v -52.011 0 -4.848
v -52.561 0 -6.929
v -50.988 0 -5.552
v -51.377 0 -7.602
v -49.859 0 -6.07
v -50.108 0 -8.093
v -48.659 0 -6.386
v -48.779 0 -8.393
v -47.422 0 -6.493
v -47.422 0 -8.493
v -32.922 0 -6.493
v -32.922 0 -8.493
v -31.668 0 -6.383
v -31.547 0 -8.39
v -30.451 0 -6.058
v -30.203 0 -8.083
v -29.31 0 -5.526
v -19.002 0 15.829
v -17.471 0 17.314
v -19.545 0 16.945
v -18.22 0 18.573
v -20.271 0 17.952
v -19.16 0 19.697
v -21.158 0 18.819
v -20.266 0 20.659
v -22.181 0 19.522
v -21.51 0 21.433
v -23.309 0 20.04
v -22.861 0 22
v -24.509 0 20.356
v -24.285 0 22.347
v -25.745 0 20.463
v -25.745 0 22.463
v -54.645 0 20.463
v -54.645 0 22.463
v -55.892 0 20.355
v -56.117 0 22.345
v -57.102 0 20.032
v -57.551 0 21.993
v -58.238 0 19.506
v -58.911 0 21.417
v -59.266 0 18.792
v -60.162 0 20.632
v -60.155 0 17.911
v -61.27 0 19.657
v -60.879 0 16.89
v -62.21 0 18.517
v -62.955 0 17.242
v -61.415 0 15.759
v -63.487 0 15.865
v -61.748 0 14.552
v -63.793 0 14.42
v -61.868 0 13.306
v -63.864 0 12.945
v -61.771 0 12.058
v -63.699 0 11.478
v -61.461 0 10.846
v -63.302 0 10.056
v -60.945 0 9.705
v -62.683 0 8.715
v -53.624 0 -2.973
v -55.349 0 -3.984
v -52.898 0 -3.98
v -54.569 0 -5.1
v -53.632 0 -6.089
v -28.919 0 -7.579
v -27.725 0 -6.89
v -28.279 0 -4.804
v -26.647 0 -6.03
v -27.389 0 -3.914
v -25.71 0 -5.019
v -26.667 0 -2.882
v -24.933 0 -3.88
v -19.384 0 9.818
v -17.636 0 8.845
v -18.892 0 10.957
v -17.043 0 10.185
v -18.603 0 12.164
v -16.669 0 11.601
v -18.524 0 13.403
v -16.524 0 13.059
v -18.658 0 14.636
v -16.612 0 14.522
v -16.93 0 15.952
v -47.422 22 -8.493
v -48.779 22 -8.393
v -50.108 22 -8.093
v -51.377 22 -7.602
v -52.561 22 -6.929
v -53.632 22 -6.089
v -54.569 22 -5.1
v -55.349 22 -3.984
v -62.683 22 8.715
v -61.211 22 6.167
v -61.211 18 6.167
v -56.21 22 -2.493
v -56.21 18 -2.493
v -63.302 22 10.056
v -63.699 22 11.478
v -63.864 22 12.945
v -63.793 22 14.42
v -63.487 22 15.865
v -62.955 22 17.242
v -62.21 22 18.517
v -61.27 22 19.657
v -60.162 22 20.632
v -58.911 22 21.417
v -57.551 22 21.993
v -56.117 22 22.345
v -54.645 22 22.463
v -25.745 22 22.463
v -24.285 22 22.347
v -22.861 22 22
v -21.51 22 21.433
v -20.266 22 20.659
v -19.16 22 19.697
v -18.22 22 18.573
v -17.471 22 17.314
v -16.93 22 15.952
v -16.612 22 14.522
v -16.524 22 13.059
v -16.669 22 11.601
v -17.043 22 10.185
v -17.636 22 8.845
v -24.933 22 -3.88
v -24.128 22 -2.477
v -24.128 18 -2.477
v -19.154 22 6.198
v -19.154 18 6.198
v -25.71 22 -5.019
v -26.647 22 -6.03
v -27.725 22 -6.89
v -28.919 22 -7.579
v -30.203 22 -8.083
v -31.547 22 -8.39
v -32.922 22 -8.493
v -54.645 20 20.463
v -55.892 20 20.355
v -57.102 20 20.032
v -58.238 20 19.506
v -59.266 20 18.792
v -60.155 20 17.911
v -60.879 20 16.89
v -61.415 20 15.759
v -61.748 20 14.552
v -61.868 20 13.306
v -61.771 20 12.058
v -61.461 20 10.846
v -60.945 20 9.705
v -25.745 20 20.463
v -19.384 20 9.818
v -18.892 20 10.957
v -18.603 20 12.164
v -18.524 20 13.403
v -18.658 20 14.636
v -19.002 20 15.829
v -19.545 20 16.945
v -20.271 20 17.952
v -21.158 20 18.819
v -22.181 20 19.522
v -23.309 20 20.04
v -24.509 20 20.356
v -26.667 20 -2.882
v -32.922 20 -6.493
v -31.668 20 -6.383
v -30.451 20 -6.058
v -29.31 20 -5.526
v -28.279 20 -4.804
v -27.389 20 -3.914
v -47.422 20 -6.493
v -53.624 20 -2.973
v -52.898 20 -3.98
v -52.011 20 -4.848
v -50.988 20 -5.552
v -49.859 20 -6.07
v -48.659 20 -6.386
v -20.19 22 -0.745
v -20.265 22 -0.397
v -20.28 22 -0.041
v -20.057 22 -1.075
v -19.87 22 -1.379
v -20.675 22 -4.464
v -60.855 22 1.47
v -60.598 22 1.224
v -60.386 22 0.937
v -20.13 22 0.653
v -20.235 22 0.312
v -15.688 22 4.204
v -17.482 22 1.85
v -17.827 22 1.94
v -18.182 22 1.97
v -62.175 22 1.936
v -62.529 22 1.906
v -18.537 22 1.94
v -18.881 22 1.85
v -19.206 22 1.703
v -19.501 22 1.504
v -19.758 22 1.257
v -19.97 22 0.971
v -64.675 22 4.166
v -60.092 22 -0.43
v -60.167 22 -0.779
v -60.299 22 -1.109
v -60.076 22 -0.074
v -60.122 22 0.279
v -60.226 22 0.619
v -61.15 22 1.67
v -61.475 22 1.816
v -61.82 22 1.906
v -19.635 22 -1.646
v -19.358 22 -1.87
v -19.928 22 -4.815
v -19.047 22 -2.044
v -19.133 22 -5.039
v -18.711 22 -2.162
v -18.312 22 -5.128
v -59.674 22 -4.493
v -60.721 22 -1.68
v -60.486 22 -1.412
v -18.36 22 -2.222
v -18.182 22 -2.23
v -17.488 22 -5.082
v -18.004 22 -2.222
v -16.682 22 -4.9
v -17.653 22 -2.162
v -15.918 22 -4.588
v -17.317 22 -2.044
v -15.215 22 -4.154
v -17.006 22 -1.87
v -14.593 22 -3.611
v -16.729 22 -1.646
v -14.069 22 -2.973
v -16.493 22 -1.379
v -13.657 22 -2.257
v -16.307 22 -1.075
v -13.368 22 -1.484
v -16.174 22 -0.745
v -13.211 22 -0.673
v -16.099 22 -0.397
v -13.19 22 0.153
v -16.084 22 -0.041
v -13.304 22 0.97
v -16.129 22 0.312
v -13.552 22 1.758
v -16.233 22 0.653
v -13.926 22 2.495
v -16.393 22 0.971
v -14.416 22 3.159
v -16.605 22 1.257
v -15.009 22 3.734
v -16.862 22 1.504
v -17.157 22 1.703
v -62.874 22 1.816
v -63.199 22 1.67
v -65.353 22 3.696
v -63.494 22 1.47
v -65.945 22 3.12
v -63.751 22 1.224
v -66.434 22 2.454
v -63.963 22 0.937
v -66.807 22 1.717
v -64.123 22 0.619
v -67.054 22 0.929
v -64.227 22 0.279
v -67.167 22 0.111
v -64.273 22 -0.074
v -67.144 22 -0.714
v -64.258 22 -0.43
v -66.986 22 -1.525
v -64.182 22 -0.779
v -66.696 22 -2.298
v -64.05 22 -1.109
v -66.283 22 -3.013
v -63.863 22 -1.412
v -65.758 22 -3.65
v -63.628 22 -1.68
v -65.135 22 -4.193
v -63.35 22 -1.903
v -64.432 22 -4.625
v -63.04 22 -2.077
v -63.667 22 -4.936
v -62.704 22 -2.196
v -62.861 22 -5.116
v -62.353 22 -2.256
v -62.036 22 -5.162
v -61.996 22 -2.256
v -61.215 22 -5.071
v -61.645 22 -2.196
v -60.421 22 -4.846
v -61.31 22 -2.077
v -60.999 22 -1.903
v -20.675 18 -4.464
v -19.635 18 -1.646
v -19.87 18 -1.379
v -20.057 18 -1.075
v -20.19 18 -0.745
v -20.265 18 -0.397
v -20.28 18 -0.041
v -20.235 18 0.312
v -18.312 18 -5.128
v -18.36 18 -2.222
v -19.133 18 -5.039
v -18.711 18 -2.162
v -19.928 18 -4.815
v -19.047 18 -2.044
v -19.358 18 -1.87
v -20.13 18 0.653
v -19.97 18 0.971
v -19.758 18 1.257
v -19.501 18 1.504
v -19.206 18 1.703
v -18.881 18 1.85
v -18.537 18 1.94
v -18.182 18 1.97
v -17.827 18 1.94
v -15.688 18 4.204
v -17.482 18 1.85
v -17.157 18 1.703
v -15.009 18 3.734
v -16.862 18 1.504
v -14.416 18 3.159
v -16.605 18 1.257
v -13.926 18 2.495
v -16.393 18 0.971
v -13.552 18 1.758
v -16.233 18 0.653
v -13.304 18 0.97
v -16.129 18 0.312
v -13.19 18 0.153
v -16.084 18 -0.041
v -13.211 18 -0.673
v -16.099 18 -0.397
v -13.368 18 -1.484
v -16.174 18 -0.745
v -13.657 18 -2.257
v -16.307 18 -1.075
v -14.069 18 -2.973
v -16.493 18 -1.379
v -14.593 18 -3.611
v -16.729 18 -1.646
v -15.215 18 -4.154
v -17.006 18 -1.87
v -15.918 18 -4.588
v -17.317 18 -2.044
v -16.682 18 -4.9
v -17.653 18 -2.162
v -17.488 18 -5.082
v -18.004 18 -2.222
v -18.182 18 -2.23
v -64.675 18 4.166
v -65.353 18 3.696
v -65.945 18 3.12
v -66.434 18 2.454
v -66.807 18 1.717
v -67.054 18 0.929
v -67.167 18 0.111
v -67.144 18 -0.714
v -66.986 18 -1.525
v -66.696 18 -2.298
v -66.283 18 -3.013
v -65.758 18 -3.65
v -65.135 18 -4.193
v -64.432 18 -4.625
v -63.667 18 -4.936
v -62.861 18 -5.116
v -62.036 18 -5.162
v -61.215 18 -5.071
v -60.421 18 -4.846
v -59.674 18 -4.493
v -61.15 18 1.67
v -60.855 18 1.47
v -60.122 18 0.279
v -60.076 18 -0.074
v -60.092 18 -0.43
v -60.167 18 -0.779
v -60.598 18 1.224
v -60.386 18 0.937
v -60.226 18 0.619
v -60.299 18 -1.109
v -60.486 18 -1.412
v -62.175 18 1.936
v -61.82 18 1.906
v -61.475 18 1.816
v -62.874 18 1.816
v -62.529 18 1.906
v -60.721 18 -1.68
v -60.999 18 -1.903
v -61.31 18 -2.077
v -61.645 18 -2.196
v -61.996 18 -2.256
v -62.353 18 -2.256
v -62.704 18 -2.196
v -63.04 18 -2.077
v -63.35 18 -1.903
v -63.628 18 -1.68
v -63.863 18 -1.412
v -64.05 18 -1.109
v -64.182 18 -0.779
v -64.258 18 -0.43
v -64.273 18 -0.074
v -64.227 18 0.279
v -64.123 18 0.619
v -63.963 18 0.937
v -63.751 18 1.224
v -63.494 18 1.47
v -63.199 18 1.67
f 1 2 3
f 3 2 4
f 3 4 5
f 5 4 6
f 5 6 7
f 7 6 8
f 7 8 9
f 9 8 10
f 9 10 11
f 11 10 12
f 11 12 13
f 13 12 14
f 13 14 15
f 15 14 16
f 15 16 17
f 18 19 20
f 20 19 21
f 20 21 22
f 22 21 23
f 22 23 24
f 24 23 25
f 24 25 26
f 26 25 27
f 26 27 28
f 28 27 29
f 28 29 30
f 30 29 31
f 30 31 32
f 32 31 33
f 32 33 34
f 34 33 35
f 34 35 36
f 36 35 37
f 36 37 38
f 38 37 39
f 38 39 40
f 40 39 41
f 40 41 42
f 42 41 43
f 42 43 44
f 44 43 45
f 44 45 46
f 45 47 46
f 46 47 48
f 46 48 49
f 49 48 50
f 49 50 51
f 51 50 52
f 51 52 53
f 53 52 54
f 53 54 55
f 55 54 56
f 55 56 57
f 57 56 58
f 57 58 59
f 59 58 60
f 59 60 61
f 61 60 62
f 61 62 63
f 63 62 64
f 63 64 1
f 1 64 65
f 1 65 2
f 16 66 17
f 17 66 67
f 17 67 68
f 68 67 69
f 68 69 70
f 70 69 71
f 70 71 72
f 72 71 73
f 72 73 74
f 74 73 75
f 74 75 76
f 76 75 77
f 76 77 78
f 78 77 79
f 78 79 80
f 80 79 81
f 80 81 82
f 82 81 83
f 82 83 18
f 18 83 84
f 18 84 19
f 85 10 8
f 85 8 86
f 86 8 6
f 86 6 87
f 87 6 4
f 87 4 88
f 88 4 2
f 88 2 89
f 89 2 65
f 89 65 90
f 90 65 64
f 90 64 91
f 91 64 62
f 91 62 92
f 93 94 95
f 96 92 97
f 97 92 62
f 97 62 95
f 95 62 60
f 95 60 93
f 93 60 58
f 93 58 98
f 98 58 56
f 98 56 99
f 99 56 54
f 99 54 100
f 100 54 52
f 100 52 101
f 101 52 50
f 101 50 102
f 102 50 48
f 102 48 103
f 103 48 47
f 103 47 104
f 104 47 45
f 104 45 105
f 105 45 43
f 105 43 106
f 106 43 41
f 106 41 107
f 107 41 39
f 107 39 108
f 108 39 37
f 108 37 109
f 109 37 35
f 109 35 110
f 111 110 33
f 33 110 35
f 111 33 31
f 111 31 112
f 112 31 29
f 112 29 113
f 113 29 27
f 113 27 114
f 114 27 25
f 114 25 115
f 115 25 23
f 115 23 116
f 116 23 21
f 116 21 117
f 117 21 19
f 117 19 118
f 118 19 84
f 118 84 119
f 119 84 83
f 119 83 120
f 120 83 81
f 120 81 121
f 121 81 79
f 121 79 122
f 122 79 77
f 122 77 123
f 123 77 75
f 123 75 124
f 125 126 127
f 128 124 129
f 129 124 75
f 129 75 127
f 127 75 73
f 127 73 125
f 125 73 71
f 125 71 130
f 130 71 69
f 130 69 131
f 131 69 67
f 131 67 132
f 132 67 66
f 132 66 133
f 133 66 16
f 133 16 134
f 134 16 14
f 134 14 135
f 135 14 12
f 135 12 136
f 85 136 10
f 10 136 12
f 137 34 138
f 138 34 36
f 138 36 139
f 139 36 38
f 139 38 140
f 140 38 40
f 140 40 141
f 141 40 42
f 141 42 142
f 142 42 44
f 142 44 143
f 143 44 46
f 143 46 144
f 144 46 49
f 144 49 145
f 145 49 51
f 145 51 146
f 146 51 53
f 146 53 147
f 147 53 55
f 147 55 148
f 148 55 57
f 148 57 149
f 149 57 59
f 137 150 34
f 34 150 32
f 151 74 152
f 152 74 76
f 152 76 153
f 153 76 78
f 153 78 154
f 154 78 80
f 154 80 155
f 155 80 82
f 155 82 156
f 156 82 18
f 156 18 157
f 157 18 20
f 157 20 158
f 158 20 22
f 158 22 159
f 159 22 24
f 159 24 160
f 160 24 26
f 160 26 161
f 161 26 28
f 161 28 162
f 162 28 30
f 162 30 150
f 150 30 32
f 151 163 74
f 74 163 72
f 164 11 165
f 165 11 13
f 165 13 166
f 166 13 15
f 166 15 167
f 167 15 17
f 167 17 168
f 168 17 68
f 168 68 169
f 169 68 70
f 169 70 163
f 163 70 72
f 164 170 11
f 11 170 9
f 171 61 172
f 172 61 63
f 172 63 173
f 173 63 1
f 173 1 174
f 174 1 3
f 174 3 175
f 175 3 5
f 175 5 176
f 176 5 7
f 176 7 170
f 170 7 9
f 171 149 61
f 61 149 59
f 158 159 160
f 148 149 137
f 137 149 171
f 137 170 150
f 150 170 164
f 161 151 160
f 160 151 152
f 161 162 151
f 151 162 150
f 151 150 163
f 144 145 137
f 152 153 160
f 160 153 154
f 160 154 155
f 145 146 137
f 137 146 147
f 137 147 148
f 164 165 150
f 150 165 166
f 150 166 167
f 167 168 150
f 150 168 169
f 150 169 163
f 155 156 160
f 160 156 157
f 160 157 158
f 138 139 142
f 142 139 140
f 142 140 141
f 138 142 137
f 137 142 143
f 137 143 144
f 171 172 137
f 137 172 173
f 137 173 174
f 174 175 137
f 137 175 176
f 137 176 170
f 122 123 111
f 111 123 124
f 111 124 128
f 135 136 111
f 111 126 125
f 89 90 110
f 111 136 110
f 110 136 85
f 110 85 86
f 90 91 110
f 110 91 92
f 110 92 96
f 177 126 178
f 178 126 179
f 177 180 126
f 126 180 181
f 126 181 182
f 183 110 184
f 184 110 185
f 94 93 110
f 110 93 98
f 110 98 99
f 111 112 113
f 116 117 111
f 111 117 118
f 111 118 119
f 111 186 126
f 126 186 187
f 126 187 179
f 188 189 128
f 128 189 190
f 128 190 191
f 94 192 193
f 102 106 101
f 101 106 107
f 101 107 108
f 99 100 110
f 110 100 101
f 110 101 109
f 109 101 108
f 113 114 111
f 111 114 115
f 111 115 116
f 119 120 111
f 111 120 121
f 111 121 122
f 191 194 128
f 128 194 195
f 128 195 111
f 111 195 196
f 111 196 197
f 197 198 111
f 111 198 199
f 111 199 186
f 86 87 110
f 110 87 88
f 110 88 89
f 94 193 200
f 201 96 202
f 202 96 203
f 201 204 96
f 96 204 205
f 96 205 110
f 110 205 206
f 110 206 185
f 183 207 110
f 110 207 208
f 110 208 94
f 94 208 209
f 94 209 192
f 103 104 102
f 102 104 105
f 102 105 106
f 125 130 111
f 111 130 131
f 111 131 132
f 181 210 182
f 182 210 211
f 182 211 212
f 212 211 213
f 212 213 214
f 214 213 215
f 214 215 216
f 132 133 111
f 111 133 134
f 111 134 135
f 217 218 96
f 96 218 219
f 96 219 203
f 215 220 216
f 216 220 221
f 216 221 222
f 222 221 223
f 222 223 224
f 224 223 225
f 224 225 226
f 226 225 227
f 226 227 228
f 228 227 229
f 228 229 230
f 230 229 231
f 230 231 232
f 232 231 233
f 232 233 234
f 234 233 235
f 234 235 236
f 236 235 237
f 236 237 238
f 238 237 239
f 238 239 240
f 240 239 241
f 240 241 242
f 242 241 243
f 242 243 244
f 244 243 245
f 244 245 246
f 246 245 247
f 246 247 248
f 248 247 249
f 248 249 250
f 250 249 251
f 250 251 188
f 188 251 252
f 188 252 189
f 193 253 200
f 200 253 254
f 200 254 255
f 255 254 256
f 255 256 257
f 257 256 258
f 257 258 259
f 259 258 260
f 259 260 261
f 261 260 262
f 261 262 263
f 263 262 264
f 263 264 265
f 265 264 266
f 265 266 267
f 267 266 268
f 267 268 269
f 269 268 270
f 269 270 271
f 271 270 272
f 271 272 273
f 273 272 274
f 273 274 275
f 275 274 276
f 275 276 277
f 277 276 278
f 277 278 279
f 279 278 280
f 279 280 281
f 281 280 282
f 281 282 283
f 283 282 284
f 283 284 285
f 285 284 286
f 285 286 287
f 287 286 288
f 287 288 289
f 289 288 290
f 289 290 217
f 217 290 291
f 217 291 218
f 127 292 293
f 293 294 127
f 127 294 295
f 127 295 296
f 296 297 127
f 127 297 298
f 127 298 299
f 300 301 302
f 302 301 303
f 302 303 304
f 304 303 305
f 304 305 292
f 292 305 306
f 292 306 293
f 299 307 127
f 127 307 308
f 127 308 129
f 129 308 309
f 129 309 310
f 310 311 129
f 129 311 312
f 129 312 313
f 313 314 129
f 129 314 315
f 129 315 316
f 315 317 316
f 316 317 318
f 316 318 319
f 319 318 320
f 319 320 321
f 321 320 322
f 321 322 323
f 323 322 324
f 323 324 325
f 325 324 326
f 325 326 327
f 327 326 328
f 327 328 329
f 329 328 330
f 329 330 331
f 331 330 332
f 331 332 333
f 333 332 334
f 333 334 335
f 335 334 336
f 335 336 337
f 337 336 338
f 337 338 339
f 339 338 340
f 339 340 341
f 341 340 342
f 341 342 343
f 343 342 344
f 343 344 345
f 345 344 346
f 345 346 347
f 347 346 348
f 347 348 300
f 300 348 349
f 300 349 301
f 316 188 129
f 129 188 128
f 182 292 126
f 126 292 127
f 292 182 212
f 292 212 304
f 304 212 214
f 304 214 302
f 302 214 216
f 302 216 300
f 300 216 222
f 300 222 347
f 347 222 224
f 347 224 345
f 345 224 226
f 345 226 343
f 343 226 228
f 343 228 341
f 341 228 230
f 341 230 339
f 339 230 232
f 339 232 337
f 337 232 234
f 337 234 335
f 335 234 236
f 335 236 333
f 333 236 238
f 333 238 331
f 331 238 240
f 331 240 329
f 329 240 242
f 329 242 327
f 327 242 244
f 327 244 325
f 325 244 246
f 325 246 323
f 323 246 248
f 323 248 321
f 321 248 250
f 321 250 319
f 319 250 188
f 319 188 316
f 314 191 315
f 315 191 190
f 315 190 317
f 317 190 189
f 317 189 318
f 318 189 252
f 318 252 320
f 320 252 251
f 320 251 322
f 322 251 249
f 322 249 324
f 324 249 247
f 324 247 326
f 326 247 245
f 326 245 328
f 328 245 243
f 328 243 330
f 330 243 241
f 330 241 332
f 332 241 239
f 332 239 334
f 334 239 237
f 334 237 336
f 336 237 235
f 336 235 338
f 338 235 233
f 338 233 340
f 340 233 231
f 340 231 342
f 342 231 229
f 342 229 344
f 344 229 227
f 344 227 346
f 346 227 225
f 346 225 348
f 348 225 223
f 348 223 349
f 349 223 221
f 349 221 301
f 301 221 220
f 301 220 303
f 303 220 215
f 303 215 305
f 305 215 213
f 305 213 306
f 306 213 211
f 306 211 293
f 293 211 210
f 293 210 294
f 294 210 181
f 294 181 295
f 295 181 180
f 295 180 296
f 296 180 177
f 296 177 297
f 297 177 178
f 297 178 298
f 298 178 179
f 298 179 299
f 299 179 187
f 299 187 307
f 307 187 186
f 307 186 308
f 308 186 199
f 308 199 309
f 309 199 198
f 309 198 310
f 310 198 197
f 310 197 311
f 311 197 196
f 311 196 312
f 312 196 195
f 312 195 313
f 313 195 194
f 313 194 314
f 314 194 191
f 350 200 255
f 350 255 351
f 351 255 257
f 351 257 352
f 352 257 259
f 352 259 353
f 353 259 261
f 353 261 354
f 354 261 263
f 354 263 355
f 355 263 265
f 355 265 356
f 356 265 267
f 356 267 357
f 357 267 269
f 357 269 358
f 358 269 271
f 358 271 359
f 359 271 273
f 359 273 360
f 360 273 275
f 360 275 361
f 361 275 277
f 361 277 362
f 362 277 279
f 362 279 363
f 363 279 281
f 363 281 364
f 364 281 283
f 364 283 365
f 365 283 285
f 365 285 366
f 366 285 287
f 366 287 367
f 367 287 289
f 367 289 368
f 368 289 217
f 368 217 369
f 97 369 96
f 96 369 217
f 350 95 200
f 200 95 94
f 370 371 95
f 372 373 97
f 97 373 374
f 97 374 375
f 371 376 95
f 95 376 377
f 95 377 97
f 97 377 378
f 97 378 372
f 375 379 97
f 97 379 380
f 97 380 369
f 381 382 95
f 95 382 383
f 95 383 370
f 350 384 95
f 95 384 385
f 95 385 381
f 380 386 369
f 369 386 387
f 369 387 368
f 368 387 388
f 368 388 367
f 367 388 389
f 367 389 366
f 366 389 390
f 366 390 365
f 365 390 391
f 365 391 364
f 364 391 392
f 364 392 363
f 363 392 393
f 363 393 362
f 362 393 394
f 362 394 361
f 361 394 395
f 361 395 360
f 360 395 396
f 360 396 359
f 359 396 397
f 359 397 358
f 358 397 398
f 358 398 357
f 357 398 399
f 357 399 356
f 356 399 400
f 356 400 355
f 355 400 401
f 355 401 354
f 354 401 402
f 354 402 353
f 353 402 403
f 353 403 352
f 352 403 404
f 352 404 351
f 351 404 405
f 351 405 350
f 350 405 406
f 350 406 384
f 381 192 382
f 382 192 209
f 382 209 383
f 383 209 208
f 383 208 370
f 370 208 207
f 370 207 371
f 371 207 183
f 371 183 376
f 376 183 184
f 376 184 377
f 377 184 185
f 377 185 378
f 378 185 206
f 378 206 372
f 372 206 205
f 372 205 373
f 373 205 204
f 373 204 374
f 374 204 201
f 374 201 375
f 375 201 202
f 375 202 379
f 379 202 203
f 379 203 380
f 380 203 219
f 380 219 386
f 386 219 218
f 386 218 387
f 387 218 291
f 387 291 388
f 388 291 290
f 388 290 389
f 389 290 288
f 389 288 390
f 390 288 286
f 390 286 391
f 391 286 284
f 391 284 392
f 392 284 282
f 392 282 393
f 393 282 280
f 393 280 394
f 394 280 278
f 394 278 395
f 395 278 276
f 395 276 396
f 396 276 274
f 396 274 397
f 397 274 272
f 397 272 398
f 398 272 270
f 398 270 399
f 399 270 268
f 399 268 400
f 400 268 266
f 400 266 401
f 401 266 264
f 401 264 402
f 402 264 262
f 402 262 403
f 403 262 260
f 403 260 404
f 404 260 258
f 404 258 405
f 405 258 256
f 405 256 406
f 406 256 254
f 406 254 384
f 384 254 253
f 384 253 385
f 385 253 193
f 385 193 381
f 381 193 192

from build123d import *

# Parameters (mm, degrees)
BOSS_EXTRUDE1_DEPTH = 20
BOSS_EXTRUDE4_DEPTH = 2
SKETCH9_R           = 2.1
BOSS_EXTRUDE5_DEPTH = 4


with BuildPart() as part:
    # Sketch1 → Boss-Extrude1 (new body)
    with BuildSketch(Plane(origin=(0, 0, 0), x_dir=(1, 0, 0), z_dir=(0, 1, 0))):
        with BuildLine():
            Line((-47.421696664, 8.493167766), (-32.921696664, 8.493167766))
            ThreePointArc((-32.921696664, 8.493167766), (-28.309146849, 7.256965456), (-24.933036081, 3.879734634))
            Line((-24.933036081, 3.879734634), (-17.636401145, -8.844865692))
            ThreePointArc((-17.636401145, -8.844865692), (-17.820612025, -17.958509448), (-25.745395692, -22.46297834))
            Line((-25.745395692, -22.46297834), (-54.645395692, -22.46297834))
            ThreePointArc((-54.645395692, -22.46297834), (-62.607823184, -17.894709582), (-62.682753297, -8.715182552))
            Line((-62.682753297, -8.715182552), (-55.348980831, 3.984497041))
            ThreePointArc((-55.348980831, 3.984497041), (-51.981574567, 7.287152643), (-47.421696664, 8.493167766))
        make_face()
        with BuildLine():
            Line((-47.421696664, 6.493167766), (-32.921696664, 6.493167766))
            ThreePointArc((-32.921696664, 6.493167766), (-29.310446688, 5.525665157), (-26.666587696, 2.882334433))
            Line((-26.666587696, 2.882334433), (-19.384059263, -9.817665567))
            ThreePointArc((-19.384059263, -9.817665567), (-19.544805292, -16.944941641), (-25.745395692, -20.46297834))
            Line((-25.745395692, -20.46297834), (-54.645395692, -20.46297834))
            ThreePointArc((-54.645395692, -20.46297834), (-60.878636724, -16.889747838), (-60.944972269, -9.705259715))
            Line((-60.944972269, -9.705259715), (-53.623842396, 2.97252707))
            ThreePointArc((-53.623842396, 2.97252707), (-50.987559904, 5.551646576), (-47.421696664, 6.493167766))
        make_face(mode=Mode.SUBTRACT)
    extrude(amount=BOSS_EXTRUDE1_DEPTH)

    # Sketch8 → Boss-Extrude4 (add)
    with BuildSketch(Plane(origin=(0, 20, 0), x_dir=(1, 0, 0), z_dir=(0, 1, 0))):
        with BuildLine():
            Line((-55.348980831, 3.984497041), (-62.682753297, -8.715182552))
            ThreePointArc((-62.682753297, -8.715182552), (-62.607823184, -17.894709582), (-54.645395692, -22.462978339))
            Line((-54.645395692, -22.462978339), (-25.745395692, -22.46297834))
            ThreePointArc((-25.745395692, -22.46297834), (-17.820612025, -17.958509448), (-17.636401145, -8.844865692))
            Line((-17.636401145, -8.844865692), (-24.933036081, 3.879734634))
            ThreePointArc((-24.933036081, 3.879734634), (-28.309146849, 7.256965456), (-32.921696664, 8.493167766))
            Line((-32.921696664, 8.493167766), (-47.421696664, 8.493167766))
            ThreePointArc((-47.421696664, 8.493167766), (-51.981574567, 7.287152643), (-55.348980831, 3.984497041))
        make_face()
    extrude(amount=BOSS_EXTRUDE4_DEPTH)

    # Sketch9 → Boss-Extrude5 (add)
    # profile 1 of 2: a face of its own
    with BuildSketch(Plane(origin=(0, 22, 0), x_dir=(1, 0, 0), z_dir=(0, 1, 0))):
        with BuildLine():
            Line((-59.674100701, 4.493496912), (-56.210189139, 2.493167766))
            Line((-56.210189139, 2.493167766), (-61.211012004, -6.166611138))
            Line((-61.211012004, -6.166611138), (-64.674923565, -4.166281993))
            ThreePointArc((-64.674923565, -4.166281993), (-66.504401585, 2.664018892), (-59.674100701, 4.493496912))
        make_face()
        with Locations(Location((-62.174512133, 0.16360746, 0), (0, 0, 270))):
            Circle(SKETCH9_R, mode=Mode.SUBTRACT)
    # profile 2 of 2: a face of its own
    with BuildSketch(Plane(origin=(0, 22, 0), x_dir=(1, 0, 0), z_dir=(0, 1, 0))):
        with BuildLine():
            Line((-19.154852081, -6.198807979), (-24.142409797, 2.468617708))
            Line((-24.142409797, 2.468617708), (-20.675439522, 4.463640794))
            ThreePointArc((-20.675439522, 4.463640794), (-13.847947821, 2.623706808), (-15.687881807, -4.203784893))
            Line((-15.687881807, -4.203784893), (-19.154852081, -6.198807979))
        make_face()
        with Locations(Location((-18.181660664, 0.12992795, 0), (0, 0, 90))):
            Circle(SKETCH9_R, mode=Mode.SUBTRACT)
    extrude(amount=-BOSS_EXTRUDE5_DEPTH)


solid = part.part
